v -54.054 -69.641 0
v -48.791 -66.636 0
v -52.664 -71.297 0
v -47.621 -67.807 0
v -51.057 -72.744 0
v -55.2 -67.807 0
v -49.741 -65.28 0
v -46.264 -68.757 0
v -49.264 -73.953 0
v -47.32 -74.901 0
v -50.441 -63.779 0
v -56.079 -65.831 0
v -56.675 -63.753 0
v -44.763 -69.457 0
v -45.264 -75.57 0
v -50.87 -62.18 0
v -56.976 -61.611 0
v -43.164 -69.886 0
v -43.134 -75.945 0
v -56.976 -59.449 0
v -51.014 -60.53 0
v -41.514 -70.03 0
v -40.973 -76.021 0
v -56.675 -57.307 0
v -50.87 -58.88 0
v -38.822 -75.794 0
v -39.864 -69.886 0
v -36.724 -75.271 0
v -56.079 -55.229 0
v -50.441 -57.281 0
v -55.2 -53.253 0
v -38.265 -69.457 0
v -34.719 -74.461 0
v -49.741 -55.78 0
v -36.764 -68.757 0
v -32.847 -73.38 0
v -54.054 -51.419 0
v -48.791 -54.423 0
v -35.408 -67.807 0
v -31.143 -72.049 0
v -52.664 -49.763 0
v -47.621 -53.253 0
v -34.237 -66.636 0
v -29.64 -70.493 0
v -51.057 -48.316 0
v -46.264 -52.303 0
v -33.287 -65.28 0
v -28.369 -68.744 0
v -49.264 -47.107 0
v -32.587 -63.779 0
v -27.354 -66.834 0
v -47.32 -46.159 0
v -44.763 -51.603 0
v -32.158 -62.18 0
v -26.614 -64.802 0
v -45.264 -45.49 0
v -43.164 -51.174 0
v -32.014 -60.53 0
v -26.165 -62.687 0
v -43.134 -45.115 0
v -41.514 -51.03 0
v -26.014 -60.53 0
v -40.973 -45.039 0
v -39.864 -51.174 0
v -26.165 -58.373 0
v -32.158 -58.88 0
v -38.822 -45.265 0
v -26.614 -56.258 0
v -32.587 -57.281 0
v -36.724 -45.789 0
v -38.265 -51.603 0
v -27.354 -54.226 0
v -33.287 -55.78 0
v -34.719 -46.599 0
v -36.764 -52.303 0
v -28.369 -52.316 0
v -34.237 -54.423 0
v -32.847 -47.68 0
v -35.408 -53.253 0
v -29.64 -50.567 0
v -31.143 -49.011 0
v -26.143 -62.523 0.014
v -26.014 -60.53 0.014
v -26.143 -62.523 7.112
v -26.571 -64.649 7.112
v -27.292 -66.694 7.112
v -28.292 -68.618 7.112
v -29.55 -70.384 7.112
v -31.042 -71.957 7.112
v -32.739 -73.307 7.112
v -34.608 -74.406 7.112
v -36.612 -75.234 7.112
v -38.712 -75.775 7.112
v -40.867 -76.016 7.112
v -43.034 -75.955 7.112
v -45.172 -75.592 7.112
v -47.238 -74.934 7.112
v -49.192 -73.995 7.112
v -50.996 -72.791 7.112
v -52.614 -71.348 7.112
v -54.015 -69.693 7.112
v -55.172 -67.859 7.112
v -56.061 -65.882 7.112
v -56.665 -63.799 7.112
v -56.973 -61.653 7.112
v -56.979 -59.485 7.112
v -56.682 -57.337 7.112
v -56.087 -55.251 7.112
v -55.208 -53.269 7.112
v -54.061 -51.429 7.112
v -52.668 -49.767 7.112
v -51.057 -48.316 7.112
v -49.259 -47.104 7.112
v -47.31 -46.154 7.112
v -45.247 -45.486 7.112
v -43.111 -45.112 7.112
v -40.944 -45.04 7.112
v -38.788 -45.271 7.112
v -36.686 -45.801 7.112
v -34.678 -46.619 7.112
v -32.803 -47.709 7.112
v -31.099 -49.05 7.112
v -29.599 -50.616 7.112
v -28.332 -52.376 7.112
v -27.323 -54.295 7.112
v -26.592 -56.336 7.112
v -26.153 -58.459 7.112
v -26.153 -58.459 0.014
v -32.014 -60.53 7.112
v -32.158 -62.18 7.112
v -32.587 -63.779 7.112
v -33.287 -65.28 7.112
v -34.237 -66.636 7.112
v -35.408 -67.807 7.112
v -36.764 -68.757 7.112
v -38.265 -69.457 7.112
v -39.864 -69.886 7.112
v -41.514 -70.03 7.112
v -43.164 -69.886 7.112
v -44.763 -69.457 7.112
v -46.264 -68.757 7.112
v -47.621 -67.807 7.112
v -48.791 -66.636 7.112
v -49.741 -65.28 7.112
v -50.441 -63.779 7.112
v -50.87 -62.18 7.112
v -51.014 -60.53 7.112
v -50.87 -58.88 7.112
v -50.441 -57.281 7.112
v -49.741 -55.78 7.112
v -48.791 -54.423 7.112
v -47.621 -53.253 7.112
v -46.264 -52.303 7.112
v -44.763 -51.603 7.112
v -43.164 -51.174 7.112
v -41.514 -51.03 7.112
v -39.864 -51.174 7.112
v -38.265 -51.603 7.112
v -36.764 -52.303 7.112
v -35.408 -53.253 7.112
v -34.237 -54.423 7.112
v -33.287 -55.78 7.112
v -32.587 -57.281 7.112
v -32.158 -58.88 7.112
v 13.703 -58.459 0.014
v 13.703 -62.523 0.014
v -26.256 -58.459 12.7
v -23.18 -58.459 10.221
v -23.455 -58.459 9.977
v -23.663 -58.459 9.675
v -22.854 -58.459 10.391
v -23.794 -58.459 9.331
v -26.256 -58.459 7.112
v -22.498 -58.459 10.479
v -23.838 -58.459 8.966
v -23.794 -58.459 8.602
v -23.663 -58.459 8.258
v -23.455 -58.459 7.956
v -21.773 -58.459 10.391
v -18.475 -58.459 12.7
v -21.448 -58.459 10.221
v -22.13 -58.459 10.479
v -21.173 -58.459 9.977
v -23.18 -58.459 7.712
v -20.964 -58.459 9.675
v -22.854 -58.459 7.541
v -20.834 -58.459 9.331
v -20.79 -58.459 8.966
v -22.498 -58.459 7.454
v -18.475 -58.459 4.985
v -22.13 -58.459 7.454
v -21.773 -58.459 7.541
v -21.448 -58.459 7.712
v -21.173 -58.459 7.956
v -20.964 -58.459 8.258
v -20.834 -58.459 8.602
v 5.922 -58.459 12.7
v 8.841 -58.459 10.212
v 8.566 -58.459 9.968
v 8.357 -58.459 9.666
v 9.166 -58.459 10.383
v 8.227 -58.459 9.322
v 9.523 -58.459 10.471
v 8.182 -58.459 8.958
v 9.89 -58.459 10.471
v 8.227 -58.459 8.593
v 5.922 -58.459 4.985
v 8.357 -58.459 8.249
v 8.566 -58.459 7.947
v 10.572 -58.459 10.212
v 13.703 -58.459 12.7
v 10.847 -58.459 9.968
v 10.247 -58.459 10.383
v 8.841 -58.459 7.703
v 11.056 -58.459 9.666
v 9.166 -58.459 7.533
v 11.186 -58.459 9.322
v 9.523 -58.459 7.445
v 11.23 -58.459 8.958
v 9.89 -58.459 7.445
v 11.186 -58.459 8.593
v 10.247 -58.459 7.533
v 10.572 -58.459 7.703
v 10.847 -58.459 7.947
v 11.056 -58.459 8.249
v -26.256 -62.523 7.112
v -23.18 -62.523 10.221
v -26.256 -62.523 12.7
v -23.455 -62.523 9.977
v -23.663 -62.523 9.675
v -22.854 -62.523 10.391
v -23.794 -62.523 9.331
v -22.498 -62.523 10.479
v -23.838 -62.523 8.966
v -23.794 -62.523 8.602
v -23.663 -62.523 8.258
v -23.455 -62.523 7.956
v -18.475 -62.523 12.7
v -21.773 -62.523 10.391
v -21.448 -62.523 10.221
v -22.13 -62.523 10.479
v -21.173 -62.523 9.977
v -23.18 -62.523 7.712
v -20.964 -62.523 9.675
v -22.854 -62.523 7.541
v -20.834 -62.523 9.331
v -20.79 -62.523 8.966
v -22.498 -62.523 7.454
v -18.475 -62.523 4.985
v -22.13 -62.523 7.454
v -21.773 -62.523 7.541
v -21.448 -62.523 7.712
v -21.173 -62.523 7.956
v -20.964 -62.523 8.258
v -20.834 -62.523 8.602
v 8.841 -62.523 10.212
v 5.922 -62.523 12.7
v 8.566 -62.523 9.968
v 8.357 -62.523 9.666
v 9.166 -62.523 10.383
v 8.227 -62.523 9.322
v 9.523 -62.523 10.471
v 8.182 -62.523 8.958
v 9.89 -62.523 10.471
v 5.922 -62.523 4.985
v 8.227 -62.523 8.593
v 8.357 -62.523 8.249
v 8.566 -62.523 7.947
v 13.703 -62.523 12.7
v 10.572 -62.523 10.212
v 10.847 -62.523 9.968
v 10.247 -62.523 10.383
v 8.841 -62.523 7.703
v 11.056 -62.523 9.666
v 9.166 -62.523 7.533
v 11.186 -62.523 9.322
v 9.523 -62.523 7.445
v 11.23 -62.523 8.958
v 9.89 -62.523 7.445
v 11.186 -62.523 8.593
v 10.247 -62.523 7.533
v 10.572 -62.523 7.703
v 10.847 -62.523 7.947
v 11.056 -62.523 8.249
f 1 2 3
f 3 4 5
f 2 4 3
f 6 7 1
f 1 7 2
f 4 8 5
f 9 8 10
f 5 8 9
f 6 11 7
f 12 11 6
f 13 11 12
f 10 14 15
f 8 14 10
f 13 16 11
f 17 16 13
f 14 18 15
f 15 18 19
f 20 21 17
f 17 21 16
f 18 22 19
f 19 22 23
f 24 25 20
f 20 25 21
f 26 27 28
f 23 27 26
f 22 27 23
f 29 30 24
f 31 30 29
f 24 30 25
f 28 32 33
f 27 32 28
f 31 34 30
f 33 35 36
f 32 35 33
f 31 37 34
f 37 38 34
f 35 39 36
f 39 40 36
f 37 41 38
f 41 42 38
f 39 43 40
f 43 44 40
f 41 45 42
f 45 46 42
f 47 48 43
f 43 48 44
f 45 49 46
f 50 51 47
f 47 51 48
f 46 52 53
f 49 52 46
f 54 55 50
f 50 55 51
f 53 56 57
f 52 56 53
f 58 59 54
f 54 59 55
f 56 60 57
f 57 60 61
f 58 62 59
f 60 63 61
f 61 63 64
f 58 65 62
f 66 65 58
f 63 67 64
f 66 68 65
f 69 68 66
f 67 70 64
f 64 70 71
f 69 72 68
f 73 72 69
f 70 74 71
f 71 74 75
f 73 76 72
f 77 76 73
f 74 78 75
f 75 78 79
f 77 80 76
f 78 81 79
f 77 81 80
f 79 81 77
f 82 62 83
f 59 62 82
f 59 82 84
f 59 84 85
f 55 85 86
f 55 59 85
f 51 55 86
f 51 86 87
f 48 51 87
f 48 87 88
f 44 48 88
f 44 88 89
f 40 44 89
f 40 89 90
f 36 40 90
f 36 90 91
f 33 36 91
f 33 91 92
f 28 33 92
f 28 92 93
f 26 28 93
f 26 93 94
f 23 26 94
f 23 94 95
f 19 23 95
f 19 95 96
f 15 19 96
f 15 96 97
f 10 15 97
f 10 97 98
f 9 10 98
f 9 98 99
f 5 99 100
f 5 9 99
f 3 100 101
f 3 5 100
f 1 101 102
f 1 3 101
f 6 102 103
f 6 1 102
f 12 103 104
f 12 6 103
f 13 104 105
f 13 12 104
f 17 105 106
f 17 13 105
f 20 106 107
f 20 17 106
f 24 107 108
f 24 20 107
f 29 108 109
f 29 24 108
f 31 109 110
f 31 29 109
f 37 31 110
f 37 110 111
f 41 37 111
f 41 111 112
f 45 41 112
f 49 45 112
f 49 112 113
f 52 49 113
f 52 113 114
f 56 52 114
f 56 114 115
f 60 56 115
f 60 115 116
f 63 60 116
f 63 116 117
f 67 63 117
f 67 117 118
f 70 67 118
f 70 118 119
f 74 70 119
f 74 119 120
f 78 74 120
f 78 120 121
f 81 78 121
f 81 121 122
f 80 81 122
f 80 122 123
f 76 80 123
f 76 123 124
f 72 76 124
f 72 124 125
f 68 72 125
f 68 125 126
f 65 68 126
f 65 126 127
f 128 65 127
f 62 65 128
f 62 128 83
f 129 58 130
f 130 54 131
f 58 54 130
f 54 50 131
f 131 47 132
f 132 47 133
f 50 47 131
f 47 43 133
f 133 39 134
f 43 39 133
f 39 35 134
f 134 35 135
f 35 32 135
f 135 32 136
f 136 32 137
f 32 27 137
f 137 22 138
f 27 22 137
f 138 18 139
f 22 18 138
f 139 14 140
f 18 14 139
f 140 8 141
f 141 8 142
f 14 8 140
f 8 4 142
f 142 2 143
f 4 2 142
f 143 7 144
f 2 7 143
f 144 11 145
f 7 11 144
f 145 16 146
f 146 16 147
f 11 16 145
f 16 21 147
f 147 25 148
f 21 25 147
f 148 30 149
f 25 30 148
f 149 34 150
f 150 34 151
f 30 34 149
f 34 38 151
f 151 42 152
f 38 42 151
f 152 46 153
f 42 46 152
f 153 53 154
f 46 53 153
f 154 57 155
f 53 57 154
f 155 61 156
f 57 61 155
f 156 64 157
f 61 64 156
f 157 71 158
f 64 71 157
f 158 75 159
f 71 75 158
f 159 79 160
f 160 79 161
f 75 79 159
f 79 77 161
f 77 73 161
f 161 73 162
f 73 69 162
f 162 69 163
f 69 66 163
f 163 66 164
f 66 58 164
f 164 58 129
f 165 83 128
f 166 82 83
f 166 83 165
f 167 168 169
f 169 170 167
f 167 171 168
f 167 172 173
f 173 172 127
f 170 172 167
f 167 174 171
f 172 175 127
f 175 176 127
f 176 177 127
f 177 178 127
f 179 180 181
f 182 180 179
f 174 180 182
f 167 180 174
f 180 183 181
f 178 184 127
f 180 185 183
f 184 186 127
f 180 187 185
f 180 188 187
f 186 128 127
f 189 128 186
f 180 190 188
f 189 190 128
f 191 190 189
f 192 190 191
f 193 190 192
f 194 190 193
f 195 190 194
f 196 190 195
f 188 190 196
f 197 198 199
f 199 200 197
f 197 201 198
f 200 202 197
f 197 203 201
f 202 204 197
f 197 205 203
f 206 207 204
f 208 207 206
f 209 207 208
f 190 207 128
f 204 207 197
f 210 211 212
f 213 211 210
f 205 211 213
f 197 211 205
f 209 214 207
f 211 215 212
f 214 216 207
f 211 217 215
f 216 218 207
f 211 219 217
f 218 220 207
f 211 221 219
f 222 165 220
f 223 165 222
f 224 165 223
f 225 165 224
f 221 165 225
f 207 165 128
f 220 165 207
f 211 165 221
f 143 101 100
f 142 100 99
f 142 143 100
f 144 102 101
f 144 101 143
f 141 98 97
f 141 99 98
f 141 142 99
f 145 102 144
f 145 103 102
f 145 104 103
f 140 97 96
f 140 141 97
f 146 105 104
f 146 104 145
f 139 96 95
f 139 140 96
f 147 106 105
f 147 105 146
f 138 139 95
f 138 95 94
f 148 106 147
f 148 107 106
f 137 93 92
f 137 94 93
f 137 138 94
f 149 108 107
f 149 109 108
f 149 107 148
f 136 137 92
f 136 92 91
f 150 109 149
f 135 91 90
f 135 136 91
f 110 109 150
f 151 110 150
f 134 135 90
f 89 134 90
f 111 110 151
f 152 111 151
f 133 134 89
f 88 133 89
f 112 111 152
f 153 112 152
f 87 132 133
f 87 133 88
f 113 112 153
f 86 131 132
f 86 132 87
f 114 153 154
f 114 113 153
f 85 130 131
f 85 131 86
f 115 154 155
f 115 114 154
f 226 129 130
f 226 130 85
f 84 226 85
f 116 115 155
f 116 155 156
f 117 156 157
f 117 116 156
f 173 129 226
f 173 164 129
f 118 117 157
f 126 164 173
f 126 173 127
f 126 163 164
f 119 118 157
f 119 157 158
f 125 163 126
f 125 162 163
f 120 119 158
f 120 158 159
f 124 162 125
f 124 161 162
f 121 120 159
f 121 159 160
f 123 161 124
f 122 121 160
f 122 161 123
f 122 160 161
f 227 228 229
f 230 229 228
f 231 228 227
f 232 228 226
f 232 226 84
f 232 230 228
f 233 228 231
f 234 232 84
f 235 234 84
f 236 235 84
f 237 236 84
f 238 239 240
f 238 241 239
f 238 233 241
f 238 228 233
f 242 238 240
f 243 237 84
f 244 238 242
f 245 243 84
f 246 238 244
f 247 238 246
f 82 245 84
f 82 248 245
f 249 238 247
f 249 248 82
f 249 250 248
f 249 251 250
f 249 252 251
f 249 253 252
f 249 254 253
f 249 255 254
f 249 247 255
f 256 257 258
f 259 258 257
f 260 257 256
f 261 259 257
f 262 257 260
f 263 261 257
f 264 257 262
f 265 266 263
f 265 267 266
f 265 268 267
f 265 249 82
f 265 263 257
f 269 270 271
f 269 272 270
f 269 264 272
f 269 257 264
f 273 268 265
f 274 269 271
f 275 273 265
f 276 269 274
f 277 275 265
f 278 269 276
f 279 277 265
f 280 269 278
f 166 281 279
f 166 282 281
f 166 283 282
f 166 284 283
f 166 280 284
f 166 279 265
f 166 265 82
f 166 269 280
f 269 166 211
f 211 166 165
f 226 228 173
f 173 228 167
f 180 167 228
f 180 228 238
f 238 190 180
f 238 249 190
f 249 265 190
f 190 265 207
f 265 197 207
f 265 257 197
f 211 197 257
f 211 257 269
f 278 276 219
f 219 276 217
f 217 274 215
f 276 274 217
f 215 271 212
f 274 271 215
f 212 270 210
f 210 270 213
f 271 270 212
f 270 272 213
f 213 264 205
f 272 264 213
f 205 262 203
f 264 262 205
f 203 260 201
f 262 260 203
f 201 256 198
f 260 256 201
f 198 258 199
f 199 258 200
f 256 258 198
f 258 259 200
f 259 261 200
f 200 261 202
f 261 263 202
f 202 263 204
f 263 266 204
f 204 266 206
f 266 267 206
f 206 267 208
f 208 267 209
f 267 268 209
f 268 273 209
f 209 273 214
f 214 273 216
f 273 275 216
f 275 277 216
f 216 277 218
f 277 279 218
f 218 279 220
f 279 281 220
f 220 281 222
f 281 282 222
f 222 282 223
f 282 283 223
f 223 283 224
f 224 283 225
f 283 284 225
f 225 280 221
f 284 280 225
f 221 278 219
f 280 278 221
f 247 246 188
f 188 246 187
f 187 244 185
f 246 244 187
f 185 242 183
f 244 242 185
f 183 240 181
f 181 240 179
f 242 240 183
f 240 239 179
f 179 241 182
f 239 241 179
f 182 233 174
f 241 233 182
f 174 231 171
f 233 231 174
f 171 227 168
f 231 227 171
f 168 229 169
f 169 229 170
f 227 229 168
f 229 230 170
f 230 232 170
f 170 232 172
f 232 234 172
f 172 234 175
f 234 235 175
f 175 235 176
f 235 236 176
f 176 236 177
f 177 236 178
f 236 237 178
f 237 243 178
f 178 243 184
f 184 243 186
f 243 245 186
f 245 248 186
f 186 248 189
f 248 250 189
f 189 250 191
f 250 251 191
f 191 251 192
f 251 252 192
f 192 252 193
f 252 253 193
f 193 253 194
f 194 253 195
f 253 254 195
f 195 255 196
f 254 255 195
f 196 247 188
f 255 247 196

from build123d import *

# Parameters (mm, degrees)
BOX_W        = 50.8
BOX_H        = 12.7
BOX_DEPTH    = 12.7
PAD001_DEPTH = 4.064
SKETCH002_R  = 1.524
POCKET_DEPTH = 4.064
SKETCH_R     = 15.5
SKETCH_R_2   = 9.5
PAD_DEPTH    = 7.112


with BuildPart() as cube:
    # Box → Box (new body)
    with BuildSketch(Plane(origin=(-31.75, -63.5, 12.7), x_dir=(1, 0, 0), z_dir=(0, 0, 1))):
        with Locations((25.4, 6.35)):
            Rectangle(BOX_W, BOX_H)
    extrude(amount=BOX_DEPTH)


with BuildPart() as pocket:
    # Sketch001 → Pad001 (new body)
    with BuildSketch(Plane.XZ.offset(62.523445)):
        Polygon((-26.256083, 0.01423), (-26.256083, 25.000831), (-18.475065, 25.000831), (-18.475065, 4.985023), (5.922138, 4.985023), (5.922138, 25.000831), (13.703156, 25.000831), (13.703156, 0.01423), align=None)
    extrude(amount=-PAD001_DEPTH)

    # Sketch002 → Pocket (cut)
    with BuildSketch(Plane.XZ.offset(62.523445)):
        with Locations((-22.313841, 8.966419)):
            Circle(SKETCH002_R)
        with Locations((9.706401, 8.957657)):
            Circle(SKETCH002_R)
        Polygon((-21.182388, 22.588652), (-20.423353, 21.006459), (-21.197212, 19.431463), (-22.909247, 19.04623), (-24.284375, 20.136409), (-24.284375, 21.891251), (-22.896394, 22.965019), align=None)
        Polygon((10.823041, 22.583467), (11.583767, 20.99775), (10.808184, 19.419245), (9.092335, 19.033154), (7.714144, 20.125762), (7.714144, 21.884513), (9.105217, 22.960673), align=None)
    extrude(amount=-POCKET_DEPTH, mode=Mode.SUBTRACT)


with BuildPart() as cut:
    # Sketch → Pad (new body)
    with BuildSketch(Plane(origin=(-4.199891, 0, 2.6e-05), x_dir=(1, 0, -1e-06), z_dir=(-1e-06, 0, -1))):
        with Locations((-37.314136, 60.529943)):
            Circle(SKETCH_R)
        with Locations((-37.314136, 60.529943)):
            Circle(SKETCH_R_2, mode=Mode.SUBTRACT)
    extrude(amount=-PAD_DEPTH)

    # Fusion: union Pocket
    add(pocket.part)

    # Cut: cut Cube
    add(cube.part, mode=Mode.SUBTRACT)


solid = cut.part
